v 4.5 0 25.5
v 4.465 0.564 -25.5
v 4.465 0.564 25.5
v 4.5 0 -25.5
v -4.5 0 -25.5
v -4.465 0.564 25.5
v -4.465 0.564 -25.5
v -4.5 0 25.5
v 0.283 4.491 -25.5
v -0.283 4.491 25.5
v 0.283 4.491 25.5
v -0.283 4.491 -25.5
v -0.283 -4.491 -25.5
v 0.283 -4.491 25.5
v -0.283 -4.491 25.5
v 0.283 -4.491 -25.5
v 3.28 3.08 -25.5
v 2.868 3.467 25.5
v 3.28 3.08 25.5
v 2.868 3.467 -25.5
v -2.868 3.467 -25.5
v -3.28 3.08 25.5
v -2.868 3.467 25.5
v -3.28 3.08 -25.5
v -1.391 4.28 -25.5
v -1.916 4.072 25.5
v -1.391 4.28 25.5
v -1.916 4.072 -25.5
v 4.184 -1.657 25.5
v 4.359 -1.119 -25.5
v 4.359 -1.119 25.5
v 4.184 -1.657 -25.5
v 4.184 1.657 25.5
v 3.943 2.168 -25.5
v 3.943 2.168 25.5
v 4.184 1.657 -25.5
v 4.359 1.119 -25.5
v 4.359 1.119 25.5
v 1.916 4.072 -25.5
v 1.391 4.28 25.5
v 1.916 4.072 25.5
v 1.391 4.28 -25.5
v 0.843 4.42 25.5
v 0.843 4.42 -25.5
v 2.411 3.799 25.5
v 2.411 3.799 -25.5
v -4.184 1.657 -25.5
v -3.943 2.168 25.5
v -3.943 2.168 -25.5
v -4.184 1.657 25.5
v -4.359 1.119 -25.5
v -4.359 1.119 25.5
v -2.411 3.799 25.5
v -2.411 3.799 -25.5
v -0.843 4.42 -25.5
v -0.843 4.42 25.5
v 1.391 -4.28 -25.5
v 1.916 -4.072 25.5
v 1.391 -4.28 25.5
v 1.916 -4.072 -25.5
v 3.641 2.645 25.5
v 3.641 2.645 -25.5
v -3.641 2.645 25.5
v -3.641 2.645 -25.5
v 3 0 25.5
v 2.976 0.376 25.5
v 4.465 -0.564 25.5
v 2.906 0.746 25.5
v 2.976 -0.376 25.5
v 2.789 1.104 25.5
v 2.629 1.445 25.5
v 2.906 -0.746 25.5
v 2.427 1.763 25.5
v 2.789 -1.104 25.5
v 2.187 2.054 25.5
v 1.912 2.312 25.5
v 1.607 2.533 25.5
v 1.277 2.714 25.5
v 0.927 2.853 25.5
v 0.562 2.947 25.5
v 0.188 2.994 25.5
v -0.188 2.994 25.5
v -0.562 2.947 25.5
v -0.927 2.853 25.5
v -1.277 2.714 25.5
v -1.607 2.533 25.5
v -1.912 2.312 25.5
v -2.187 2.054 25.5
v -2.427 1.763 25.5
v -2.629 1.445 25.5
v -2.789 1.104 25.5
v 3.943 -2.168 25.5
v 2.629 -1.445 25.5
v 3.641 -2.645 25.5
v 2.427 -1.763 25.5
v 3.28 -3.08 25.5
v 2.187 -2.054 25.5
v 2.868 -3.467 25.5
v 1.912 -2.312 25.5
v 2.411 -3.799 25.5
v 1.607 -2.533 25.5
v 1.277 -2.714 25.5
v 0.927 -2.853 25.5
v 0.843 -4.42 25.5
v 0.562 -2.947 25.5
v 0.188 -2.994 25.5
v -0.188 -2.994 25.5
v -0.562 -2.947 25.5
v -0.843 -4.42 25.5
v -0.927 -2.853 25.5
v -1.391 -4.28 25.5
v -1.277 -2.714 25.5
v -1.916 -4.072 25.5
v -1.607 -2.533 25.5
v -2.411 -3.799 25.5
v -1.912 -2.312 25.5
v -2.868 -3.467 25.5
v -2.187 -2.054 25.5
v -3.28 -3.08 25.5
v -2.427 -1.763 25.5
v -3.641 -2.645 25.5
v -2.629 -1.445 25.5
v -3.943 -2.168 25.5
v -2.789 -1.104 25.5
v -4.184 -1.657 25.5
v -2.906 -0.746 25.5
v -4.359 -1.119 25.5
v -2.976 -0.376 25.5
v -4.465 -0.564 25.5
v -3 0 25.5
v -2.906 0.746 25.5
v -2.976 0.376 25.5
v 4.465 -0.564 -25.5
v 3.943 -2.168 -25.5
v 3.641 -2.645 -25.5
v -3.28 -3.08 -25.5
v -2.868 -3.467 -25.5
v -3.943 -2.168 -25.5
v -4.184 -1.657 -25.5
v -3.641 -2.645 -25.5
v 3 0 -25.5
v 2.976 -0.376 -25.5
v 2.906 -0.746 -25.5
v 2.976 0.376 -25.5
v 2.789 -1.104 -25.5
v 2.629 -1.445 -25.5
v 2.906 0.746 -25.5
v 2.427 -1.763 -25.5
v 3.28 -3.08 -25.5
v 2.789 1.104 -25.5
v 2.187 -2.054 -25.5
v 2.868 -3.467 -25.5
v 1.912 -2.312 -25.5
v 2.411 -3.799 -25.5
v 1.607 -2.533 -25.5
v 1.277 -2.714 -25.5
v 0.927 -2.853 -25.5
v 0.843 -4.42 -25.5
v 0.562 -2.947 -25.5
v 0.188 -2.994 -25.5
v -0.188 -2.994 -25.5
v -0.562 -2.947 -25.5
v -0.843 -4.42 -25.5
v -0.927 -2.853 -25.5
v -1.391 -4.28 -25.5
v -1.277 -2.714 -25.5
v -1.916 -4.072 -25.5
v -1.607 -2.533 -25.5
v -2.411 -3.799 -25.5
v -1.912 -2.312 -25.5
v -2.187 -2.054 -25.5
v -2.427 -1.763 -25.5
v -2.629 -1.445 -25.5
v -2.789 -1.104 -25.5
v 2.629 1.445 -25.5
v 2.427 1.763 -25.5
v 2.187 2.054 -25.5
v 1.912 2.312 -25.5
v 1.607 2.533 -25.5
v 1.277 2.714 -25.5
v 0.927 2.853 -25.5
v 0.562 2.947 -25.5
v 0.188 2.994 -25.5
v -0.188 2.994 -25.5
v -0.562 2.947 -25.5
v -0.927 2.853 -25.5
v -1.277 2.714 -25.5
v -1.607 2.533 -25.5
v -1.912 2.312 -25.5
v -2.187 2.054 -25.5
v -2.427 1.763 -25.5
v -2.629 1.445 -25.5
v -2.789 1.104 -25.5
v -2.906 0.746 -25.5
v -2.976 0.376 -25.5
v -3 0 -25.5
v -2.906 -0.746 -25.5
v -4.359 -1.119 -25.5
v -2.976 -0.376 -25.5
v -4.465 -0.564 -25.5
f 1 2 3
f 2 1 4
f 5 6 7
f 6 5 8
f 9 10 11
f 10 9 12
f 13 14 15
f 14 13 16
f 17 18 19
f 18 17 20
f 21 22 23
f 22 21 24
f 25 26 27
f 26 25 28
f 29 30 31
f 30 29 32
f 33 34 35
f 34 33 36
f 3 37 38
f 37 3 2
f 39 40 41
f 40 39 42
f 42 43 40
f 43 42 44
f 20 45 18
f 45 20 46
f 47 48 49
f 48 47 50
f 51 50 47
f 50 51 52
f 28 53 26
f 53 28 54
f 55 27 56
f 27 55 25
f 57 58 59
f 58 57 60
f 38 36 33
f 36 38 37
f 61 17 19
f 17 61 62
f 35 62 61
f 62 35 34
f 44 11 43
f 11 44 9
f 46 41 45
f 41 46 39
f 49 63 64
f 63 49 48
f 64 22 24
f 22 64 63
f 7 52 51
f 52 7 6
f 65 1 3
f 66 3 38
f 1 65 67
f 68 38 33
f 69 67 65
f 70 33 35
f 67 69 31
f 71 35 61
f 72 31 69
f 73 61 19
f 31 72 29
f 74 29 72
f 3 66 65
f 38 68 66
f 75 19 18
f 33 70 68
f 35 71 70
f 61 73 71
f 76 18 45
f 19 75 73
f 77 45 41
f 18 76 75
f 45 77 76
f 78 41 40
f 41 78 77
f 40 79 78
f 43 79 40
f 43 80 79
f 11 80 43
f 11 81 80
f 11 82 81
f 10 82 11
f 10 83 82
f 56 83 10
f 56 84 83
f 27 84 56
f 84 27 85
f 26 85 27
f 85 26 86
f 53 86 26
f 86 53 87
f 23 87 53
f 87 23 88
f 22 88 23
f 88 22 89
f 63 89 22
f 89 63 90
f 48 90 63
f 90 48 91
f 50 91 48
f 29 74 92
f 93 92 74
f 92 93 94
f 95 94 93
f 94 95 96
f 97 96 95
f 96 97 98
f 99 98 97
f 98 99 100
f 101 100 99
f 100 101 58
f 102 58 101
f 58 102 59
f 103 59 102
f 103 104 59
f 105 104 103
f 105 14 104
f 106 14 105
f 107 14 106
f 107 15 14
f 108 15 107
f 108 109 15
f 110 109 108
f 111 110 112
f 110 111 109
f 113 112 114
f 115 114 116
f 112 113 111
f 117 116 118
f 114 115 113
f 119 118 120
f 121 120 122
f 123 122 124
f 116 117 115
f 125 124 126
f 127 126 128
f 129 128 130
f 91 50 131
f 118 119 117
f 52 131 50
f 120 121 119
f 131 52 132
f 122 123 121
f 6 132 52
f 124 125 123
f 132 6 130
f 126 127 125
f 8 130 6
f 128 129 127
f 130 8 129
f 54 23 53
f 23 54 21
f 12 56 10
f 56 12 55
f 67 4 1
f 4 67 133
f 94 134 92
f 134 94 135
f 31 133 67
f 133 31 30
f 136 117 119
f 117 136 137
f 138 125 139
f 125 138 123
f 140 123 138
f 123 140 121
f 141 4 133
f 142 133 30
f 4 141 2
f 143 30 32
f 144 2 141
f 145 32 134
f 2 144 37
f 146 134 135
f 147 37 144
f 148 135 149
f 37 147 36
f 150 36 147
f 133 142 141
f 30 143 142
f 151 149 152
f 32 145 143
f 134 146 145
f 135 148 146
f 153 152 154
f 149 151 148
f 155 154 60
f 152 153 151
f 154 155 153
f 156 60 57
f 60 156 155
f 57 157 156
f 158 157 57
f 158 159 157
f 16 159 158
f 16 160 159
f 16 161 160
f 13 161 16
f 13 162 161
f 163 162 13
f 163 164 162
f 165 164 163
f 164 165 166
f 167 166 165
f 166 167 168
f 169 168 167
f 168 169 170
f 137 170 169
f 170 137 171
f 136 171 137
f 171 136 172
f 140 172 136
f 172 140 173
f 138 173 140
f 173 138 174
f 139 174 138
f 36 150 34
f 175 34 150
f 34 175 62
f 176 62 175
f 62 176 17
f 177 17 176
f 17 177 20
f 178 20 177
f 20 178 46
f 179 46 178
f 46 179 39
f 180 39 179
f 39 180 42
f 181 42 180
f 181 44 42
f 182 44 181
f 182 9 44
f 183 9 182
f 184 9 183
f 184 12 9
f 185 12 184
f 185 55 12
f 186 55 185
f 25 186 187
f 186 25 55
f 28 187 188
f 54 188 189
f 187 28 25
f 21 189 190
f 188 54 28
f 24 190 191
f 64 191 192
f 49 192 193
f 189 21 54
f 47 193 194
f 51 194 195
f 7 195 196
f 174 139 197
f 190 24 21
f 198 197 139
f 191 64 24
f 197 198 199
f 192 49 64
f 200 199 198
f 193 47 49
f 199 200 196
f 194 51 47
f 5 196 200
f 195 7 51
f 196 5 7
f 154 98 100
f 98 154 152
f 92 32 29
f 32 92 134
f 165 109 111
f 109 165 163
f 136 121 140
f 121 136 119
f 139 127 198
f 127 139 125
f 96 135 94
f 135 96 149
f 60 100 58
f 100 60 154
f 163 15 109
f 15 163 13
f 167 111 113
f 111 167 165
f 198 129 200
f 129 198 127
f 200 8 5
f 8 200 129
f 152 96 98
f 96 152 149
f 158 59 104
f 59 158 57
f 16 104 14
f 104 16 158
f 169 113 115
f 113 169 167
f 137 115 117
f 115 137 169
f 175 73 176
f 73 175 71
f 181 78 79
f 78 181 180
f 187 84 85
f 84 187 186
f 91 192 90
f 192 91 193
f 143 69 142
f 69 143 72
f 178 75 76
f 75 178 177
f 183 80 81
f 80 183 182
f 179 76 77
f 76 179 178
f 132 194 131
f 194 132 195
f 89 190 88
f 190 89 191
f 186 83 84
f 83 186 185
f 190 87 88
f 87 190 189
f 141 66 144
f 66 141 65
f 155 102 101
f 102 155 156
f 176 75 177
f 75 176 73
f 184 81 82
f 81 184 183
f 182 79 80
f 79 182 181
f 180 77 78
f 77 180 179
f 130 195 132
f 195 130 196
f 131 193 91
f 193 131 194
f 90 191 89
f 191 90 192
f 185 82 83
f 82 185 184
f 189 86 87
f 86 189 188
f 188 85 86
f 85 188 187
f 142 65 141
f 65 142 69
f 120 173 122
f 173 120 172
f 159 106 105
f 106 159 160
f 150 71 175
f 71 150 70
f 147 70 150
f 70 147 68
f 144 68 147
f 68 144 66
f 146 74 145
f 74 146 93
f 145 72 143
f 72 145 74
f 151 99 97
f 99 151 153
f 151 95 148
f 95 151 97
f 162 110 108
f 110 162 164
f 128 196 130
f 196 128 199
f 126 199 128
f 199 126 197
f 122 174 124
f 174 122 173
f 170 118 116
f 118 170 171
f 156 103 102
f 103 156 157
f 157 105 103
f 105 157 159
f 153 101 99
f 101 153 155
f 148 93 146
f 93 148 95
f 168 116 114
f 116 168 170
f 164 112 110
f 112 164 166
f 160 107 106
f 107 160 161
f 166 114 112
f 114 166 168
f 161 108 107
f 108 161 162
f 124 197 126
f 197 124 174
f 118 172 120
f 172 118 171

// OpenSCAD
$fn = 50;


difference() {
	union() {
		translate(v = [0, 0, -25.5000000000]) {
			cylinder(h = 51, r = 4.5000000000);
		}
	}
	union() {
		translate(v = [0, 0, -100.0000000000]) {
			cylinder(h = 200, r = 3);
		}
	}
}
